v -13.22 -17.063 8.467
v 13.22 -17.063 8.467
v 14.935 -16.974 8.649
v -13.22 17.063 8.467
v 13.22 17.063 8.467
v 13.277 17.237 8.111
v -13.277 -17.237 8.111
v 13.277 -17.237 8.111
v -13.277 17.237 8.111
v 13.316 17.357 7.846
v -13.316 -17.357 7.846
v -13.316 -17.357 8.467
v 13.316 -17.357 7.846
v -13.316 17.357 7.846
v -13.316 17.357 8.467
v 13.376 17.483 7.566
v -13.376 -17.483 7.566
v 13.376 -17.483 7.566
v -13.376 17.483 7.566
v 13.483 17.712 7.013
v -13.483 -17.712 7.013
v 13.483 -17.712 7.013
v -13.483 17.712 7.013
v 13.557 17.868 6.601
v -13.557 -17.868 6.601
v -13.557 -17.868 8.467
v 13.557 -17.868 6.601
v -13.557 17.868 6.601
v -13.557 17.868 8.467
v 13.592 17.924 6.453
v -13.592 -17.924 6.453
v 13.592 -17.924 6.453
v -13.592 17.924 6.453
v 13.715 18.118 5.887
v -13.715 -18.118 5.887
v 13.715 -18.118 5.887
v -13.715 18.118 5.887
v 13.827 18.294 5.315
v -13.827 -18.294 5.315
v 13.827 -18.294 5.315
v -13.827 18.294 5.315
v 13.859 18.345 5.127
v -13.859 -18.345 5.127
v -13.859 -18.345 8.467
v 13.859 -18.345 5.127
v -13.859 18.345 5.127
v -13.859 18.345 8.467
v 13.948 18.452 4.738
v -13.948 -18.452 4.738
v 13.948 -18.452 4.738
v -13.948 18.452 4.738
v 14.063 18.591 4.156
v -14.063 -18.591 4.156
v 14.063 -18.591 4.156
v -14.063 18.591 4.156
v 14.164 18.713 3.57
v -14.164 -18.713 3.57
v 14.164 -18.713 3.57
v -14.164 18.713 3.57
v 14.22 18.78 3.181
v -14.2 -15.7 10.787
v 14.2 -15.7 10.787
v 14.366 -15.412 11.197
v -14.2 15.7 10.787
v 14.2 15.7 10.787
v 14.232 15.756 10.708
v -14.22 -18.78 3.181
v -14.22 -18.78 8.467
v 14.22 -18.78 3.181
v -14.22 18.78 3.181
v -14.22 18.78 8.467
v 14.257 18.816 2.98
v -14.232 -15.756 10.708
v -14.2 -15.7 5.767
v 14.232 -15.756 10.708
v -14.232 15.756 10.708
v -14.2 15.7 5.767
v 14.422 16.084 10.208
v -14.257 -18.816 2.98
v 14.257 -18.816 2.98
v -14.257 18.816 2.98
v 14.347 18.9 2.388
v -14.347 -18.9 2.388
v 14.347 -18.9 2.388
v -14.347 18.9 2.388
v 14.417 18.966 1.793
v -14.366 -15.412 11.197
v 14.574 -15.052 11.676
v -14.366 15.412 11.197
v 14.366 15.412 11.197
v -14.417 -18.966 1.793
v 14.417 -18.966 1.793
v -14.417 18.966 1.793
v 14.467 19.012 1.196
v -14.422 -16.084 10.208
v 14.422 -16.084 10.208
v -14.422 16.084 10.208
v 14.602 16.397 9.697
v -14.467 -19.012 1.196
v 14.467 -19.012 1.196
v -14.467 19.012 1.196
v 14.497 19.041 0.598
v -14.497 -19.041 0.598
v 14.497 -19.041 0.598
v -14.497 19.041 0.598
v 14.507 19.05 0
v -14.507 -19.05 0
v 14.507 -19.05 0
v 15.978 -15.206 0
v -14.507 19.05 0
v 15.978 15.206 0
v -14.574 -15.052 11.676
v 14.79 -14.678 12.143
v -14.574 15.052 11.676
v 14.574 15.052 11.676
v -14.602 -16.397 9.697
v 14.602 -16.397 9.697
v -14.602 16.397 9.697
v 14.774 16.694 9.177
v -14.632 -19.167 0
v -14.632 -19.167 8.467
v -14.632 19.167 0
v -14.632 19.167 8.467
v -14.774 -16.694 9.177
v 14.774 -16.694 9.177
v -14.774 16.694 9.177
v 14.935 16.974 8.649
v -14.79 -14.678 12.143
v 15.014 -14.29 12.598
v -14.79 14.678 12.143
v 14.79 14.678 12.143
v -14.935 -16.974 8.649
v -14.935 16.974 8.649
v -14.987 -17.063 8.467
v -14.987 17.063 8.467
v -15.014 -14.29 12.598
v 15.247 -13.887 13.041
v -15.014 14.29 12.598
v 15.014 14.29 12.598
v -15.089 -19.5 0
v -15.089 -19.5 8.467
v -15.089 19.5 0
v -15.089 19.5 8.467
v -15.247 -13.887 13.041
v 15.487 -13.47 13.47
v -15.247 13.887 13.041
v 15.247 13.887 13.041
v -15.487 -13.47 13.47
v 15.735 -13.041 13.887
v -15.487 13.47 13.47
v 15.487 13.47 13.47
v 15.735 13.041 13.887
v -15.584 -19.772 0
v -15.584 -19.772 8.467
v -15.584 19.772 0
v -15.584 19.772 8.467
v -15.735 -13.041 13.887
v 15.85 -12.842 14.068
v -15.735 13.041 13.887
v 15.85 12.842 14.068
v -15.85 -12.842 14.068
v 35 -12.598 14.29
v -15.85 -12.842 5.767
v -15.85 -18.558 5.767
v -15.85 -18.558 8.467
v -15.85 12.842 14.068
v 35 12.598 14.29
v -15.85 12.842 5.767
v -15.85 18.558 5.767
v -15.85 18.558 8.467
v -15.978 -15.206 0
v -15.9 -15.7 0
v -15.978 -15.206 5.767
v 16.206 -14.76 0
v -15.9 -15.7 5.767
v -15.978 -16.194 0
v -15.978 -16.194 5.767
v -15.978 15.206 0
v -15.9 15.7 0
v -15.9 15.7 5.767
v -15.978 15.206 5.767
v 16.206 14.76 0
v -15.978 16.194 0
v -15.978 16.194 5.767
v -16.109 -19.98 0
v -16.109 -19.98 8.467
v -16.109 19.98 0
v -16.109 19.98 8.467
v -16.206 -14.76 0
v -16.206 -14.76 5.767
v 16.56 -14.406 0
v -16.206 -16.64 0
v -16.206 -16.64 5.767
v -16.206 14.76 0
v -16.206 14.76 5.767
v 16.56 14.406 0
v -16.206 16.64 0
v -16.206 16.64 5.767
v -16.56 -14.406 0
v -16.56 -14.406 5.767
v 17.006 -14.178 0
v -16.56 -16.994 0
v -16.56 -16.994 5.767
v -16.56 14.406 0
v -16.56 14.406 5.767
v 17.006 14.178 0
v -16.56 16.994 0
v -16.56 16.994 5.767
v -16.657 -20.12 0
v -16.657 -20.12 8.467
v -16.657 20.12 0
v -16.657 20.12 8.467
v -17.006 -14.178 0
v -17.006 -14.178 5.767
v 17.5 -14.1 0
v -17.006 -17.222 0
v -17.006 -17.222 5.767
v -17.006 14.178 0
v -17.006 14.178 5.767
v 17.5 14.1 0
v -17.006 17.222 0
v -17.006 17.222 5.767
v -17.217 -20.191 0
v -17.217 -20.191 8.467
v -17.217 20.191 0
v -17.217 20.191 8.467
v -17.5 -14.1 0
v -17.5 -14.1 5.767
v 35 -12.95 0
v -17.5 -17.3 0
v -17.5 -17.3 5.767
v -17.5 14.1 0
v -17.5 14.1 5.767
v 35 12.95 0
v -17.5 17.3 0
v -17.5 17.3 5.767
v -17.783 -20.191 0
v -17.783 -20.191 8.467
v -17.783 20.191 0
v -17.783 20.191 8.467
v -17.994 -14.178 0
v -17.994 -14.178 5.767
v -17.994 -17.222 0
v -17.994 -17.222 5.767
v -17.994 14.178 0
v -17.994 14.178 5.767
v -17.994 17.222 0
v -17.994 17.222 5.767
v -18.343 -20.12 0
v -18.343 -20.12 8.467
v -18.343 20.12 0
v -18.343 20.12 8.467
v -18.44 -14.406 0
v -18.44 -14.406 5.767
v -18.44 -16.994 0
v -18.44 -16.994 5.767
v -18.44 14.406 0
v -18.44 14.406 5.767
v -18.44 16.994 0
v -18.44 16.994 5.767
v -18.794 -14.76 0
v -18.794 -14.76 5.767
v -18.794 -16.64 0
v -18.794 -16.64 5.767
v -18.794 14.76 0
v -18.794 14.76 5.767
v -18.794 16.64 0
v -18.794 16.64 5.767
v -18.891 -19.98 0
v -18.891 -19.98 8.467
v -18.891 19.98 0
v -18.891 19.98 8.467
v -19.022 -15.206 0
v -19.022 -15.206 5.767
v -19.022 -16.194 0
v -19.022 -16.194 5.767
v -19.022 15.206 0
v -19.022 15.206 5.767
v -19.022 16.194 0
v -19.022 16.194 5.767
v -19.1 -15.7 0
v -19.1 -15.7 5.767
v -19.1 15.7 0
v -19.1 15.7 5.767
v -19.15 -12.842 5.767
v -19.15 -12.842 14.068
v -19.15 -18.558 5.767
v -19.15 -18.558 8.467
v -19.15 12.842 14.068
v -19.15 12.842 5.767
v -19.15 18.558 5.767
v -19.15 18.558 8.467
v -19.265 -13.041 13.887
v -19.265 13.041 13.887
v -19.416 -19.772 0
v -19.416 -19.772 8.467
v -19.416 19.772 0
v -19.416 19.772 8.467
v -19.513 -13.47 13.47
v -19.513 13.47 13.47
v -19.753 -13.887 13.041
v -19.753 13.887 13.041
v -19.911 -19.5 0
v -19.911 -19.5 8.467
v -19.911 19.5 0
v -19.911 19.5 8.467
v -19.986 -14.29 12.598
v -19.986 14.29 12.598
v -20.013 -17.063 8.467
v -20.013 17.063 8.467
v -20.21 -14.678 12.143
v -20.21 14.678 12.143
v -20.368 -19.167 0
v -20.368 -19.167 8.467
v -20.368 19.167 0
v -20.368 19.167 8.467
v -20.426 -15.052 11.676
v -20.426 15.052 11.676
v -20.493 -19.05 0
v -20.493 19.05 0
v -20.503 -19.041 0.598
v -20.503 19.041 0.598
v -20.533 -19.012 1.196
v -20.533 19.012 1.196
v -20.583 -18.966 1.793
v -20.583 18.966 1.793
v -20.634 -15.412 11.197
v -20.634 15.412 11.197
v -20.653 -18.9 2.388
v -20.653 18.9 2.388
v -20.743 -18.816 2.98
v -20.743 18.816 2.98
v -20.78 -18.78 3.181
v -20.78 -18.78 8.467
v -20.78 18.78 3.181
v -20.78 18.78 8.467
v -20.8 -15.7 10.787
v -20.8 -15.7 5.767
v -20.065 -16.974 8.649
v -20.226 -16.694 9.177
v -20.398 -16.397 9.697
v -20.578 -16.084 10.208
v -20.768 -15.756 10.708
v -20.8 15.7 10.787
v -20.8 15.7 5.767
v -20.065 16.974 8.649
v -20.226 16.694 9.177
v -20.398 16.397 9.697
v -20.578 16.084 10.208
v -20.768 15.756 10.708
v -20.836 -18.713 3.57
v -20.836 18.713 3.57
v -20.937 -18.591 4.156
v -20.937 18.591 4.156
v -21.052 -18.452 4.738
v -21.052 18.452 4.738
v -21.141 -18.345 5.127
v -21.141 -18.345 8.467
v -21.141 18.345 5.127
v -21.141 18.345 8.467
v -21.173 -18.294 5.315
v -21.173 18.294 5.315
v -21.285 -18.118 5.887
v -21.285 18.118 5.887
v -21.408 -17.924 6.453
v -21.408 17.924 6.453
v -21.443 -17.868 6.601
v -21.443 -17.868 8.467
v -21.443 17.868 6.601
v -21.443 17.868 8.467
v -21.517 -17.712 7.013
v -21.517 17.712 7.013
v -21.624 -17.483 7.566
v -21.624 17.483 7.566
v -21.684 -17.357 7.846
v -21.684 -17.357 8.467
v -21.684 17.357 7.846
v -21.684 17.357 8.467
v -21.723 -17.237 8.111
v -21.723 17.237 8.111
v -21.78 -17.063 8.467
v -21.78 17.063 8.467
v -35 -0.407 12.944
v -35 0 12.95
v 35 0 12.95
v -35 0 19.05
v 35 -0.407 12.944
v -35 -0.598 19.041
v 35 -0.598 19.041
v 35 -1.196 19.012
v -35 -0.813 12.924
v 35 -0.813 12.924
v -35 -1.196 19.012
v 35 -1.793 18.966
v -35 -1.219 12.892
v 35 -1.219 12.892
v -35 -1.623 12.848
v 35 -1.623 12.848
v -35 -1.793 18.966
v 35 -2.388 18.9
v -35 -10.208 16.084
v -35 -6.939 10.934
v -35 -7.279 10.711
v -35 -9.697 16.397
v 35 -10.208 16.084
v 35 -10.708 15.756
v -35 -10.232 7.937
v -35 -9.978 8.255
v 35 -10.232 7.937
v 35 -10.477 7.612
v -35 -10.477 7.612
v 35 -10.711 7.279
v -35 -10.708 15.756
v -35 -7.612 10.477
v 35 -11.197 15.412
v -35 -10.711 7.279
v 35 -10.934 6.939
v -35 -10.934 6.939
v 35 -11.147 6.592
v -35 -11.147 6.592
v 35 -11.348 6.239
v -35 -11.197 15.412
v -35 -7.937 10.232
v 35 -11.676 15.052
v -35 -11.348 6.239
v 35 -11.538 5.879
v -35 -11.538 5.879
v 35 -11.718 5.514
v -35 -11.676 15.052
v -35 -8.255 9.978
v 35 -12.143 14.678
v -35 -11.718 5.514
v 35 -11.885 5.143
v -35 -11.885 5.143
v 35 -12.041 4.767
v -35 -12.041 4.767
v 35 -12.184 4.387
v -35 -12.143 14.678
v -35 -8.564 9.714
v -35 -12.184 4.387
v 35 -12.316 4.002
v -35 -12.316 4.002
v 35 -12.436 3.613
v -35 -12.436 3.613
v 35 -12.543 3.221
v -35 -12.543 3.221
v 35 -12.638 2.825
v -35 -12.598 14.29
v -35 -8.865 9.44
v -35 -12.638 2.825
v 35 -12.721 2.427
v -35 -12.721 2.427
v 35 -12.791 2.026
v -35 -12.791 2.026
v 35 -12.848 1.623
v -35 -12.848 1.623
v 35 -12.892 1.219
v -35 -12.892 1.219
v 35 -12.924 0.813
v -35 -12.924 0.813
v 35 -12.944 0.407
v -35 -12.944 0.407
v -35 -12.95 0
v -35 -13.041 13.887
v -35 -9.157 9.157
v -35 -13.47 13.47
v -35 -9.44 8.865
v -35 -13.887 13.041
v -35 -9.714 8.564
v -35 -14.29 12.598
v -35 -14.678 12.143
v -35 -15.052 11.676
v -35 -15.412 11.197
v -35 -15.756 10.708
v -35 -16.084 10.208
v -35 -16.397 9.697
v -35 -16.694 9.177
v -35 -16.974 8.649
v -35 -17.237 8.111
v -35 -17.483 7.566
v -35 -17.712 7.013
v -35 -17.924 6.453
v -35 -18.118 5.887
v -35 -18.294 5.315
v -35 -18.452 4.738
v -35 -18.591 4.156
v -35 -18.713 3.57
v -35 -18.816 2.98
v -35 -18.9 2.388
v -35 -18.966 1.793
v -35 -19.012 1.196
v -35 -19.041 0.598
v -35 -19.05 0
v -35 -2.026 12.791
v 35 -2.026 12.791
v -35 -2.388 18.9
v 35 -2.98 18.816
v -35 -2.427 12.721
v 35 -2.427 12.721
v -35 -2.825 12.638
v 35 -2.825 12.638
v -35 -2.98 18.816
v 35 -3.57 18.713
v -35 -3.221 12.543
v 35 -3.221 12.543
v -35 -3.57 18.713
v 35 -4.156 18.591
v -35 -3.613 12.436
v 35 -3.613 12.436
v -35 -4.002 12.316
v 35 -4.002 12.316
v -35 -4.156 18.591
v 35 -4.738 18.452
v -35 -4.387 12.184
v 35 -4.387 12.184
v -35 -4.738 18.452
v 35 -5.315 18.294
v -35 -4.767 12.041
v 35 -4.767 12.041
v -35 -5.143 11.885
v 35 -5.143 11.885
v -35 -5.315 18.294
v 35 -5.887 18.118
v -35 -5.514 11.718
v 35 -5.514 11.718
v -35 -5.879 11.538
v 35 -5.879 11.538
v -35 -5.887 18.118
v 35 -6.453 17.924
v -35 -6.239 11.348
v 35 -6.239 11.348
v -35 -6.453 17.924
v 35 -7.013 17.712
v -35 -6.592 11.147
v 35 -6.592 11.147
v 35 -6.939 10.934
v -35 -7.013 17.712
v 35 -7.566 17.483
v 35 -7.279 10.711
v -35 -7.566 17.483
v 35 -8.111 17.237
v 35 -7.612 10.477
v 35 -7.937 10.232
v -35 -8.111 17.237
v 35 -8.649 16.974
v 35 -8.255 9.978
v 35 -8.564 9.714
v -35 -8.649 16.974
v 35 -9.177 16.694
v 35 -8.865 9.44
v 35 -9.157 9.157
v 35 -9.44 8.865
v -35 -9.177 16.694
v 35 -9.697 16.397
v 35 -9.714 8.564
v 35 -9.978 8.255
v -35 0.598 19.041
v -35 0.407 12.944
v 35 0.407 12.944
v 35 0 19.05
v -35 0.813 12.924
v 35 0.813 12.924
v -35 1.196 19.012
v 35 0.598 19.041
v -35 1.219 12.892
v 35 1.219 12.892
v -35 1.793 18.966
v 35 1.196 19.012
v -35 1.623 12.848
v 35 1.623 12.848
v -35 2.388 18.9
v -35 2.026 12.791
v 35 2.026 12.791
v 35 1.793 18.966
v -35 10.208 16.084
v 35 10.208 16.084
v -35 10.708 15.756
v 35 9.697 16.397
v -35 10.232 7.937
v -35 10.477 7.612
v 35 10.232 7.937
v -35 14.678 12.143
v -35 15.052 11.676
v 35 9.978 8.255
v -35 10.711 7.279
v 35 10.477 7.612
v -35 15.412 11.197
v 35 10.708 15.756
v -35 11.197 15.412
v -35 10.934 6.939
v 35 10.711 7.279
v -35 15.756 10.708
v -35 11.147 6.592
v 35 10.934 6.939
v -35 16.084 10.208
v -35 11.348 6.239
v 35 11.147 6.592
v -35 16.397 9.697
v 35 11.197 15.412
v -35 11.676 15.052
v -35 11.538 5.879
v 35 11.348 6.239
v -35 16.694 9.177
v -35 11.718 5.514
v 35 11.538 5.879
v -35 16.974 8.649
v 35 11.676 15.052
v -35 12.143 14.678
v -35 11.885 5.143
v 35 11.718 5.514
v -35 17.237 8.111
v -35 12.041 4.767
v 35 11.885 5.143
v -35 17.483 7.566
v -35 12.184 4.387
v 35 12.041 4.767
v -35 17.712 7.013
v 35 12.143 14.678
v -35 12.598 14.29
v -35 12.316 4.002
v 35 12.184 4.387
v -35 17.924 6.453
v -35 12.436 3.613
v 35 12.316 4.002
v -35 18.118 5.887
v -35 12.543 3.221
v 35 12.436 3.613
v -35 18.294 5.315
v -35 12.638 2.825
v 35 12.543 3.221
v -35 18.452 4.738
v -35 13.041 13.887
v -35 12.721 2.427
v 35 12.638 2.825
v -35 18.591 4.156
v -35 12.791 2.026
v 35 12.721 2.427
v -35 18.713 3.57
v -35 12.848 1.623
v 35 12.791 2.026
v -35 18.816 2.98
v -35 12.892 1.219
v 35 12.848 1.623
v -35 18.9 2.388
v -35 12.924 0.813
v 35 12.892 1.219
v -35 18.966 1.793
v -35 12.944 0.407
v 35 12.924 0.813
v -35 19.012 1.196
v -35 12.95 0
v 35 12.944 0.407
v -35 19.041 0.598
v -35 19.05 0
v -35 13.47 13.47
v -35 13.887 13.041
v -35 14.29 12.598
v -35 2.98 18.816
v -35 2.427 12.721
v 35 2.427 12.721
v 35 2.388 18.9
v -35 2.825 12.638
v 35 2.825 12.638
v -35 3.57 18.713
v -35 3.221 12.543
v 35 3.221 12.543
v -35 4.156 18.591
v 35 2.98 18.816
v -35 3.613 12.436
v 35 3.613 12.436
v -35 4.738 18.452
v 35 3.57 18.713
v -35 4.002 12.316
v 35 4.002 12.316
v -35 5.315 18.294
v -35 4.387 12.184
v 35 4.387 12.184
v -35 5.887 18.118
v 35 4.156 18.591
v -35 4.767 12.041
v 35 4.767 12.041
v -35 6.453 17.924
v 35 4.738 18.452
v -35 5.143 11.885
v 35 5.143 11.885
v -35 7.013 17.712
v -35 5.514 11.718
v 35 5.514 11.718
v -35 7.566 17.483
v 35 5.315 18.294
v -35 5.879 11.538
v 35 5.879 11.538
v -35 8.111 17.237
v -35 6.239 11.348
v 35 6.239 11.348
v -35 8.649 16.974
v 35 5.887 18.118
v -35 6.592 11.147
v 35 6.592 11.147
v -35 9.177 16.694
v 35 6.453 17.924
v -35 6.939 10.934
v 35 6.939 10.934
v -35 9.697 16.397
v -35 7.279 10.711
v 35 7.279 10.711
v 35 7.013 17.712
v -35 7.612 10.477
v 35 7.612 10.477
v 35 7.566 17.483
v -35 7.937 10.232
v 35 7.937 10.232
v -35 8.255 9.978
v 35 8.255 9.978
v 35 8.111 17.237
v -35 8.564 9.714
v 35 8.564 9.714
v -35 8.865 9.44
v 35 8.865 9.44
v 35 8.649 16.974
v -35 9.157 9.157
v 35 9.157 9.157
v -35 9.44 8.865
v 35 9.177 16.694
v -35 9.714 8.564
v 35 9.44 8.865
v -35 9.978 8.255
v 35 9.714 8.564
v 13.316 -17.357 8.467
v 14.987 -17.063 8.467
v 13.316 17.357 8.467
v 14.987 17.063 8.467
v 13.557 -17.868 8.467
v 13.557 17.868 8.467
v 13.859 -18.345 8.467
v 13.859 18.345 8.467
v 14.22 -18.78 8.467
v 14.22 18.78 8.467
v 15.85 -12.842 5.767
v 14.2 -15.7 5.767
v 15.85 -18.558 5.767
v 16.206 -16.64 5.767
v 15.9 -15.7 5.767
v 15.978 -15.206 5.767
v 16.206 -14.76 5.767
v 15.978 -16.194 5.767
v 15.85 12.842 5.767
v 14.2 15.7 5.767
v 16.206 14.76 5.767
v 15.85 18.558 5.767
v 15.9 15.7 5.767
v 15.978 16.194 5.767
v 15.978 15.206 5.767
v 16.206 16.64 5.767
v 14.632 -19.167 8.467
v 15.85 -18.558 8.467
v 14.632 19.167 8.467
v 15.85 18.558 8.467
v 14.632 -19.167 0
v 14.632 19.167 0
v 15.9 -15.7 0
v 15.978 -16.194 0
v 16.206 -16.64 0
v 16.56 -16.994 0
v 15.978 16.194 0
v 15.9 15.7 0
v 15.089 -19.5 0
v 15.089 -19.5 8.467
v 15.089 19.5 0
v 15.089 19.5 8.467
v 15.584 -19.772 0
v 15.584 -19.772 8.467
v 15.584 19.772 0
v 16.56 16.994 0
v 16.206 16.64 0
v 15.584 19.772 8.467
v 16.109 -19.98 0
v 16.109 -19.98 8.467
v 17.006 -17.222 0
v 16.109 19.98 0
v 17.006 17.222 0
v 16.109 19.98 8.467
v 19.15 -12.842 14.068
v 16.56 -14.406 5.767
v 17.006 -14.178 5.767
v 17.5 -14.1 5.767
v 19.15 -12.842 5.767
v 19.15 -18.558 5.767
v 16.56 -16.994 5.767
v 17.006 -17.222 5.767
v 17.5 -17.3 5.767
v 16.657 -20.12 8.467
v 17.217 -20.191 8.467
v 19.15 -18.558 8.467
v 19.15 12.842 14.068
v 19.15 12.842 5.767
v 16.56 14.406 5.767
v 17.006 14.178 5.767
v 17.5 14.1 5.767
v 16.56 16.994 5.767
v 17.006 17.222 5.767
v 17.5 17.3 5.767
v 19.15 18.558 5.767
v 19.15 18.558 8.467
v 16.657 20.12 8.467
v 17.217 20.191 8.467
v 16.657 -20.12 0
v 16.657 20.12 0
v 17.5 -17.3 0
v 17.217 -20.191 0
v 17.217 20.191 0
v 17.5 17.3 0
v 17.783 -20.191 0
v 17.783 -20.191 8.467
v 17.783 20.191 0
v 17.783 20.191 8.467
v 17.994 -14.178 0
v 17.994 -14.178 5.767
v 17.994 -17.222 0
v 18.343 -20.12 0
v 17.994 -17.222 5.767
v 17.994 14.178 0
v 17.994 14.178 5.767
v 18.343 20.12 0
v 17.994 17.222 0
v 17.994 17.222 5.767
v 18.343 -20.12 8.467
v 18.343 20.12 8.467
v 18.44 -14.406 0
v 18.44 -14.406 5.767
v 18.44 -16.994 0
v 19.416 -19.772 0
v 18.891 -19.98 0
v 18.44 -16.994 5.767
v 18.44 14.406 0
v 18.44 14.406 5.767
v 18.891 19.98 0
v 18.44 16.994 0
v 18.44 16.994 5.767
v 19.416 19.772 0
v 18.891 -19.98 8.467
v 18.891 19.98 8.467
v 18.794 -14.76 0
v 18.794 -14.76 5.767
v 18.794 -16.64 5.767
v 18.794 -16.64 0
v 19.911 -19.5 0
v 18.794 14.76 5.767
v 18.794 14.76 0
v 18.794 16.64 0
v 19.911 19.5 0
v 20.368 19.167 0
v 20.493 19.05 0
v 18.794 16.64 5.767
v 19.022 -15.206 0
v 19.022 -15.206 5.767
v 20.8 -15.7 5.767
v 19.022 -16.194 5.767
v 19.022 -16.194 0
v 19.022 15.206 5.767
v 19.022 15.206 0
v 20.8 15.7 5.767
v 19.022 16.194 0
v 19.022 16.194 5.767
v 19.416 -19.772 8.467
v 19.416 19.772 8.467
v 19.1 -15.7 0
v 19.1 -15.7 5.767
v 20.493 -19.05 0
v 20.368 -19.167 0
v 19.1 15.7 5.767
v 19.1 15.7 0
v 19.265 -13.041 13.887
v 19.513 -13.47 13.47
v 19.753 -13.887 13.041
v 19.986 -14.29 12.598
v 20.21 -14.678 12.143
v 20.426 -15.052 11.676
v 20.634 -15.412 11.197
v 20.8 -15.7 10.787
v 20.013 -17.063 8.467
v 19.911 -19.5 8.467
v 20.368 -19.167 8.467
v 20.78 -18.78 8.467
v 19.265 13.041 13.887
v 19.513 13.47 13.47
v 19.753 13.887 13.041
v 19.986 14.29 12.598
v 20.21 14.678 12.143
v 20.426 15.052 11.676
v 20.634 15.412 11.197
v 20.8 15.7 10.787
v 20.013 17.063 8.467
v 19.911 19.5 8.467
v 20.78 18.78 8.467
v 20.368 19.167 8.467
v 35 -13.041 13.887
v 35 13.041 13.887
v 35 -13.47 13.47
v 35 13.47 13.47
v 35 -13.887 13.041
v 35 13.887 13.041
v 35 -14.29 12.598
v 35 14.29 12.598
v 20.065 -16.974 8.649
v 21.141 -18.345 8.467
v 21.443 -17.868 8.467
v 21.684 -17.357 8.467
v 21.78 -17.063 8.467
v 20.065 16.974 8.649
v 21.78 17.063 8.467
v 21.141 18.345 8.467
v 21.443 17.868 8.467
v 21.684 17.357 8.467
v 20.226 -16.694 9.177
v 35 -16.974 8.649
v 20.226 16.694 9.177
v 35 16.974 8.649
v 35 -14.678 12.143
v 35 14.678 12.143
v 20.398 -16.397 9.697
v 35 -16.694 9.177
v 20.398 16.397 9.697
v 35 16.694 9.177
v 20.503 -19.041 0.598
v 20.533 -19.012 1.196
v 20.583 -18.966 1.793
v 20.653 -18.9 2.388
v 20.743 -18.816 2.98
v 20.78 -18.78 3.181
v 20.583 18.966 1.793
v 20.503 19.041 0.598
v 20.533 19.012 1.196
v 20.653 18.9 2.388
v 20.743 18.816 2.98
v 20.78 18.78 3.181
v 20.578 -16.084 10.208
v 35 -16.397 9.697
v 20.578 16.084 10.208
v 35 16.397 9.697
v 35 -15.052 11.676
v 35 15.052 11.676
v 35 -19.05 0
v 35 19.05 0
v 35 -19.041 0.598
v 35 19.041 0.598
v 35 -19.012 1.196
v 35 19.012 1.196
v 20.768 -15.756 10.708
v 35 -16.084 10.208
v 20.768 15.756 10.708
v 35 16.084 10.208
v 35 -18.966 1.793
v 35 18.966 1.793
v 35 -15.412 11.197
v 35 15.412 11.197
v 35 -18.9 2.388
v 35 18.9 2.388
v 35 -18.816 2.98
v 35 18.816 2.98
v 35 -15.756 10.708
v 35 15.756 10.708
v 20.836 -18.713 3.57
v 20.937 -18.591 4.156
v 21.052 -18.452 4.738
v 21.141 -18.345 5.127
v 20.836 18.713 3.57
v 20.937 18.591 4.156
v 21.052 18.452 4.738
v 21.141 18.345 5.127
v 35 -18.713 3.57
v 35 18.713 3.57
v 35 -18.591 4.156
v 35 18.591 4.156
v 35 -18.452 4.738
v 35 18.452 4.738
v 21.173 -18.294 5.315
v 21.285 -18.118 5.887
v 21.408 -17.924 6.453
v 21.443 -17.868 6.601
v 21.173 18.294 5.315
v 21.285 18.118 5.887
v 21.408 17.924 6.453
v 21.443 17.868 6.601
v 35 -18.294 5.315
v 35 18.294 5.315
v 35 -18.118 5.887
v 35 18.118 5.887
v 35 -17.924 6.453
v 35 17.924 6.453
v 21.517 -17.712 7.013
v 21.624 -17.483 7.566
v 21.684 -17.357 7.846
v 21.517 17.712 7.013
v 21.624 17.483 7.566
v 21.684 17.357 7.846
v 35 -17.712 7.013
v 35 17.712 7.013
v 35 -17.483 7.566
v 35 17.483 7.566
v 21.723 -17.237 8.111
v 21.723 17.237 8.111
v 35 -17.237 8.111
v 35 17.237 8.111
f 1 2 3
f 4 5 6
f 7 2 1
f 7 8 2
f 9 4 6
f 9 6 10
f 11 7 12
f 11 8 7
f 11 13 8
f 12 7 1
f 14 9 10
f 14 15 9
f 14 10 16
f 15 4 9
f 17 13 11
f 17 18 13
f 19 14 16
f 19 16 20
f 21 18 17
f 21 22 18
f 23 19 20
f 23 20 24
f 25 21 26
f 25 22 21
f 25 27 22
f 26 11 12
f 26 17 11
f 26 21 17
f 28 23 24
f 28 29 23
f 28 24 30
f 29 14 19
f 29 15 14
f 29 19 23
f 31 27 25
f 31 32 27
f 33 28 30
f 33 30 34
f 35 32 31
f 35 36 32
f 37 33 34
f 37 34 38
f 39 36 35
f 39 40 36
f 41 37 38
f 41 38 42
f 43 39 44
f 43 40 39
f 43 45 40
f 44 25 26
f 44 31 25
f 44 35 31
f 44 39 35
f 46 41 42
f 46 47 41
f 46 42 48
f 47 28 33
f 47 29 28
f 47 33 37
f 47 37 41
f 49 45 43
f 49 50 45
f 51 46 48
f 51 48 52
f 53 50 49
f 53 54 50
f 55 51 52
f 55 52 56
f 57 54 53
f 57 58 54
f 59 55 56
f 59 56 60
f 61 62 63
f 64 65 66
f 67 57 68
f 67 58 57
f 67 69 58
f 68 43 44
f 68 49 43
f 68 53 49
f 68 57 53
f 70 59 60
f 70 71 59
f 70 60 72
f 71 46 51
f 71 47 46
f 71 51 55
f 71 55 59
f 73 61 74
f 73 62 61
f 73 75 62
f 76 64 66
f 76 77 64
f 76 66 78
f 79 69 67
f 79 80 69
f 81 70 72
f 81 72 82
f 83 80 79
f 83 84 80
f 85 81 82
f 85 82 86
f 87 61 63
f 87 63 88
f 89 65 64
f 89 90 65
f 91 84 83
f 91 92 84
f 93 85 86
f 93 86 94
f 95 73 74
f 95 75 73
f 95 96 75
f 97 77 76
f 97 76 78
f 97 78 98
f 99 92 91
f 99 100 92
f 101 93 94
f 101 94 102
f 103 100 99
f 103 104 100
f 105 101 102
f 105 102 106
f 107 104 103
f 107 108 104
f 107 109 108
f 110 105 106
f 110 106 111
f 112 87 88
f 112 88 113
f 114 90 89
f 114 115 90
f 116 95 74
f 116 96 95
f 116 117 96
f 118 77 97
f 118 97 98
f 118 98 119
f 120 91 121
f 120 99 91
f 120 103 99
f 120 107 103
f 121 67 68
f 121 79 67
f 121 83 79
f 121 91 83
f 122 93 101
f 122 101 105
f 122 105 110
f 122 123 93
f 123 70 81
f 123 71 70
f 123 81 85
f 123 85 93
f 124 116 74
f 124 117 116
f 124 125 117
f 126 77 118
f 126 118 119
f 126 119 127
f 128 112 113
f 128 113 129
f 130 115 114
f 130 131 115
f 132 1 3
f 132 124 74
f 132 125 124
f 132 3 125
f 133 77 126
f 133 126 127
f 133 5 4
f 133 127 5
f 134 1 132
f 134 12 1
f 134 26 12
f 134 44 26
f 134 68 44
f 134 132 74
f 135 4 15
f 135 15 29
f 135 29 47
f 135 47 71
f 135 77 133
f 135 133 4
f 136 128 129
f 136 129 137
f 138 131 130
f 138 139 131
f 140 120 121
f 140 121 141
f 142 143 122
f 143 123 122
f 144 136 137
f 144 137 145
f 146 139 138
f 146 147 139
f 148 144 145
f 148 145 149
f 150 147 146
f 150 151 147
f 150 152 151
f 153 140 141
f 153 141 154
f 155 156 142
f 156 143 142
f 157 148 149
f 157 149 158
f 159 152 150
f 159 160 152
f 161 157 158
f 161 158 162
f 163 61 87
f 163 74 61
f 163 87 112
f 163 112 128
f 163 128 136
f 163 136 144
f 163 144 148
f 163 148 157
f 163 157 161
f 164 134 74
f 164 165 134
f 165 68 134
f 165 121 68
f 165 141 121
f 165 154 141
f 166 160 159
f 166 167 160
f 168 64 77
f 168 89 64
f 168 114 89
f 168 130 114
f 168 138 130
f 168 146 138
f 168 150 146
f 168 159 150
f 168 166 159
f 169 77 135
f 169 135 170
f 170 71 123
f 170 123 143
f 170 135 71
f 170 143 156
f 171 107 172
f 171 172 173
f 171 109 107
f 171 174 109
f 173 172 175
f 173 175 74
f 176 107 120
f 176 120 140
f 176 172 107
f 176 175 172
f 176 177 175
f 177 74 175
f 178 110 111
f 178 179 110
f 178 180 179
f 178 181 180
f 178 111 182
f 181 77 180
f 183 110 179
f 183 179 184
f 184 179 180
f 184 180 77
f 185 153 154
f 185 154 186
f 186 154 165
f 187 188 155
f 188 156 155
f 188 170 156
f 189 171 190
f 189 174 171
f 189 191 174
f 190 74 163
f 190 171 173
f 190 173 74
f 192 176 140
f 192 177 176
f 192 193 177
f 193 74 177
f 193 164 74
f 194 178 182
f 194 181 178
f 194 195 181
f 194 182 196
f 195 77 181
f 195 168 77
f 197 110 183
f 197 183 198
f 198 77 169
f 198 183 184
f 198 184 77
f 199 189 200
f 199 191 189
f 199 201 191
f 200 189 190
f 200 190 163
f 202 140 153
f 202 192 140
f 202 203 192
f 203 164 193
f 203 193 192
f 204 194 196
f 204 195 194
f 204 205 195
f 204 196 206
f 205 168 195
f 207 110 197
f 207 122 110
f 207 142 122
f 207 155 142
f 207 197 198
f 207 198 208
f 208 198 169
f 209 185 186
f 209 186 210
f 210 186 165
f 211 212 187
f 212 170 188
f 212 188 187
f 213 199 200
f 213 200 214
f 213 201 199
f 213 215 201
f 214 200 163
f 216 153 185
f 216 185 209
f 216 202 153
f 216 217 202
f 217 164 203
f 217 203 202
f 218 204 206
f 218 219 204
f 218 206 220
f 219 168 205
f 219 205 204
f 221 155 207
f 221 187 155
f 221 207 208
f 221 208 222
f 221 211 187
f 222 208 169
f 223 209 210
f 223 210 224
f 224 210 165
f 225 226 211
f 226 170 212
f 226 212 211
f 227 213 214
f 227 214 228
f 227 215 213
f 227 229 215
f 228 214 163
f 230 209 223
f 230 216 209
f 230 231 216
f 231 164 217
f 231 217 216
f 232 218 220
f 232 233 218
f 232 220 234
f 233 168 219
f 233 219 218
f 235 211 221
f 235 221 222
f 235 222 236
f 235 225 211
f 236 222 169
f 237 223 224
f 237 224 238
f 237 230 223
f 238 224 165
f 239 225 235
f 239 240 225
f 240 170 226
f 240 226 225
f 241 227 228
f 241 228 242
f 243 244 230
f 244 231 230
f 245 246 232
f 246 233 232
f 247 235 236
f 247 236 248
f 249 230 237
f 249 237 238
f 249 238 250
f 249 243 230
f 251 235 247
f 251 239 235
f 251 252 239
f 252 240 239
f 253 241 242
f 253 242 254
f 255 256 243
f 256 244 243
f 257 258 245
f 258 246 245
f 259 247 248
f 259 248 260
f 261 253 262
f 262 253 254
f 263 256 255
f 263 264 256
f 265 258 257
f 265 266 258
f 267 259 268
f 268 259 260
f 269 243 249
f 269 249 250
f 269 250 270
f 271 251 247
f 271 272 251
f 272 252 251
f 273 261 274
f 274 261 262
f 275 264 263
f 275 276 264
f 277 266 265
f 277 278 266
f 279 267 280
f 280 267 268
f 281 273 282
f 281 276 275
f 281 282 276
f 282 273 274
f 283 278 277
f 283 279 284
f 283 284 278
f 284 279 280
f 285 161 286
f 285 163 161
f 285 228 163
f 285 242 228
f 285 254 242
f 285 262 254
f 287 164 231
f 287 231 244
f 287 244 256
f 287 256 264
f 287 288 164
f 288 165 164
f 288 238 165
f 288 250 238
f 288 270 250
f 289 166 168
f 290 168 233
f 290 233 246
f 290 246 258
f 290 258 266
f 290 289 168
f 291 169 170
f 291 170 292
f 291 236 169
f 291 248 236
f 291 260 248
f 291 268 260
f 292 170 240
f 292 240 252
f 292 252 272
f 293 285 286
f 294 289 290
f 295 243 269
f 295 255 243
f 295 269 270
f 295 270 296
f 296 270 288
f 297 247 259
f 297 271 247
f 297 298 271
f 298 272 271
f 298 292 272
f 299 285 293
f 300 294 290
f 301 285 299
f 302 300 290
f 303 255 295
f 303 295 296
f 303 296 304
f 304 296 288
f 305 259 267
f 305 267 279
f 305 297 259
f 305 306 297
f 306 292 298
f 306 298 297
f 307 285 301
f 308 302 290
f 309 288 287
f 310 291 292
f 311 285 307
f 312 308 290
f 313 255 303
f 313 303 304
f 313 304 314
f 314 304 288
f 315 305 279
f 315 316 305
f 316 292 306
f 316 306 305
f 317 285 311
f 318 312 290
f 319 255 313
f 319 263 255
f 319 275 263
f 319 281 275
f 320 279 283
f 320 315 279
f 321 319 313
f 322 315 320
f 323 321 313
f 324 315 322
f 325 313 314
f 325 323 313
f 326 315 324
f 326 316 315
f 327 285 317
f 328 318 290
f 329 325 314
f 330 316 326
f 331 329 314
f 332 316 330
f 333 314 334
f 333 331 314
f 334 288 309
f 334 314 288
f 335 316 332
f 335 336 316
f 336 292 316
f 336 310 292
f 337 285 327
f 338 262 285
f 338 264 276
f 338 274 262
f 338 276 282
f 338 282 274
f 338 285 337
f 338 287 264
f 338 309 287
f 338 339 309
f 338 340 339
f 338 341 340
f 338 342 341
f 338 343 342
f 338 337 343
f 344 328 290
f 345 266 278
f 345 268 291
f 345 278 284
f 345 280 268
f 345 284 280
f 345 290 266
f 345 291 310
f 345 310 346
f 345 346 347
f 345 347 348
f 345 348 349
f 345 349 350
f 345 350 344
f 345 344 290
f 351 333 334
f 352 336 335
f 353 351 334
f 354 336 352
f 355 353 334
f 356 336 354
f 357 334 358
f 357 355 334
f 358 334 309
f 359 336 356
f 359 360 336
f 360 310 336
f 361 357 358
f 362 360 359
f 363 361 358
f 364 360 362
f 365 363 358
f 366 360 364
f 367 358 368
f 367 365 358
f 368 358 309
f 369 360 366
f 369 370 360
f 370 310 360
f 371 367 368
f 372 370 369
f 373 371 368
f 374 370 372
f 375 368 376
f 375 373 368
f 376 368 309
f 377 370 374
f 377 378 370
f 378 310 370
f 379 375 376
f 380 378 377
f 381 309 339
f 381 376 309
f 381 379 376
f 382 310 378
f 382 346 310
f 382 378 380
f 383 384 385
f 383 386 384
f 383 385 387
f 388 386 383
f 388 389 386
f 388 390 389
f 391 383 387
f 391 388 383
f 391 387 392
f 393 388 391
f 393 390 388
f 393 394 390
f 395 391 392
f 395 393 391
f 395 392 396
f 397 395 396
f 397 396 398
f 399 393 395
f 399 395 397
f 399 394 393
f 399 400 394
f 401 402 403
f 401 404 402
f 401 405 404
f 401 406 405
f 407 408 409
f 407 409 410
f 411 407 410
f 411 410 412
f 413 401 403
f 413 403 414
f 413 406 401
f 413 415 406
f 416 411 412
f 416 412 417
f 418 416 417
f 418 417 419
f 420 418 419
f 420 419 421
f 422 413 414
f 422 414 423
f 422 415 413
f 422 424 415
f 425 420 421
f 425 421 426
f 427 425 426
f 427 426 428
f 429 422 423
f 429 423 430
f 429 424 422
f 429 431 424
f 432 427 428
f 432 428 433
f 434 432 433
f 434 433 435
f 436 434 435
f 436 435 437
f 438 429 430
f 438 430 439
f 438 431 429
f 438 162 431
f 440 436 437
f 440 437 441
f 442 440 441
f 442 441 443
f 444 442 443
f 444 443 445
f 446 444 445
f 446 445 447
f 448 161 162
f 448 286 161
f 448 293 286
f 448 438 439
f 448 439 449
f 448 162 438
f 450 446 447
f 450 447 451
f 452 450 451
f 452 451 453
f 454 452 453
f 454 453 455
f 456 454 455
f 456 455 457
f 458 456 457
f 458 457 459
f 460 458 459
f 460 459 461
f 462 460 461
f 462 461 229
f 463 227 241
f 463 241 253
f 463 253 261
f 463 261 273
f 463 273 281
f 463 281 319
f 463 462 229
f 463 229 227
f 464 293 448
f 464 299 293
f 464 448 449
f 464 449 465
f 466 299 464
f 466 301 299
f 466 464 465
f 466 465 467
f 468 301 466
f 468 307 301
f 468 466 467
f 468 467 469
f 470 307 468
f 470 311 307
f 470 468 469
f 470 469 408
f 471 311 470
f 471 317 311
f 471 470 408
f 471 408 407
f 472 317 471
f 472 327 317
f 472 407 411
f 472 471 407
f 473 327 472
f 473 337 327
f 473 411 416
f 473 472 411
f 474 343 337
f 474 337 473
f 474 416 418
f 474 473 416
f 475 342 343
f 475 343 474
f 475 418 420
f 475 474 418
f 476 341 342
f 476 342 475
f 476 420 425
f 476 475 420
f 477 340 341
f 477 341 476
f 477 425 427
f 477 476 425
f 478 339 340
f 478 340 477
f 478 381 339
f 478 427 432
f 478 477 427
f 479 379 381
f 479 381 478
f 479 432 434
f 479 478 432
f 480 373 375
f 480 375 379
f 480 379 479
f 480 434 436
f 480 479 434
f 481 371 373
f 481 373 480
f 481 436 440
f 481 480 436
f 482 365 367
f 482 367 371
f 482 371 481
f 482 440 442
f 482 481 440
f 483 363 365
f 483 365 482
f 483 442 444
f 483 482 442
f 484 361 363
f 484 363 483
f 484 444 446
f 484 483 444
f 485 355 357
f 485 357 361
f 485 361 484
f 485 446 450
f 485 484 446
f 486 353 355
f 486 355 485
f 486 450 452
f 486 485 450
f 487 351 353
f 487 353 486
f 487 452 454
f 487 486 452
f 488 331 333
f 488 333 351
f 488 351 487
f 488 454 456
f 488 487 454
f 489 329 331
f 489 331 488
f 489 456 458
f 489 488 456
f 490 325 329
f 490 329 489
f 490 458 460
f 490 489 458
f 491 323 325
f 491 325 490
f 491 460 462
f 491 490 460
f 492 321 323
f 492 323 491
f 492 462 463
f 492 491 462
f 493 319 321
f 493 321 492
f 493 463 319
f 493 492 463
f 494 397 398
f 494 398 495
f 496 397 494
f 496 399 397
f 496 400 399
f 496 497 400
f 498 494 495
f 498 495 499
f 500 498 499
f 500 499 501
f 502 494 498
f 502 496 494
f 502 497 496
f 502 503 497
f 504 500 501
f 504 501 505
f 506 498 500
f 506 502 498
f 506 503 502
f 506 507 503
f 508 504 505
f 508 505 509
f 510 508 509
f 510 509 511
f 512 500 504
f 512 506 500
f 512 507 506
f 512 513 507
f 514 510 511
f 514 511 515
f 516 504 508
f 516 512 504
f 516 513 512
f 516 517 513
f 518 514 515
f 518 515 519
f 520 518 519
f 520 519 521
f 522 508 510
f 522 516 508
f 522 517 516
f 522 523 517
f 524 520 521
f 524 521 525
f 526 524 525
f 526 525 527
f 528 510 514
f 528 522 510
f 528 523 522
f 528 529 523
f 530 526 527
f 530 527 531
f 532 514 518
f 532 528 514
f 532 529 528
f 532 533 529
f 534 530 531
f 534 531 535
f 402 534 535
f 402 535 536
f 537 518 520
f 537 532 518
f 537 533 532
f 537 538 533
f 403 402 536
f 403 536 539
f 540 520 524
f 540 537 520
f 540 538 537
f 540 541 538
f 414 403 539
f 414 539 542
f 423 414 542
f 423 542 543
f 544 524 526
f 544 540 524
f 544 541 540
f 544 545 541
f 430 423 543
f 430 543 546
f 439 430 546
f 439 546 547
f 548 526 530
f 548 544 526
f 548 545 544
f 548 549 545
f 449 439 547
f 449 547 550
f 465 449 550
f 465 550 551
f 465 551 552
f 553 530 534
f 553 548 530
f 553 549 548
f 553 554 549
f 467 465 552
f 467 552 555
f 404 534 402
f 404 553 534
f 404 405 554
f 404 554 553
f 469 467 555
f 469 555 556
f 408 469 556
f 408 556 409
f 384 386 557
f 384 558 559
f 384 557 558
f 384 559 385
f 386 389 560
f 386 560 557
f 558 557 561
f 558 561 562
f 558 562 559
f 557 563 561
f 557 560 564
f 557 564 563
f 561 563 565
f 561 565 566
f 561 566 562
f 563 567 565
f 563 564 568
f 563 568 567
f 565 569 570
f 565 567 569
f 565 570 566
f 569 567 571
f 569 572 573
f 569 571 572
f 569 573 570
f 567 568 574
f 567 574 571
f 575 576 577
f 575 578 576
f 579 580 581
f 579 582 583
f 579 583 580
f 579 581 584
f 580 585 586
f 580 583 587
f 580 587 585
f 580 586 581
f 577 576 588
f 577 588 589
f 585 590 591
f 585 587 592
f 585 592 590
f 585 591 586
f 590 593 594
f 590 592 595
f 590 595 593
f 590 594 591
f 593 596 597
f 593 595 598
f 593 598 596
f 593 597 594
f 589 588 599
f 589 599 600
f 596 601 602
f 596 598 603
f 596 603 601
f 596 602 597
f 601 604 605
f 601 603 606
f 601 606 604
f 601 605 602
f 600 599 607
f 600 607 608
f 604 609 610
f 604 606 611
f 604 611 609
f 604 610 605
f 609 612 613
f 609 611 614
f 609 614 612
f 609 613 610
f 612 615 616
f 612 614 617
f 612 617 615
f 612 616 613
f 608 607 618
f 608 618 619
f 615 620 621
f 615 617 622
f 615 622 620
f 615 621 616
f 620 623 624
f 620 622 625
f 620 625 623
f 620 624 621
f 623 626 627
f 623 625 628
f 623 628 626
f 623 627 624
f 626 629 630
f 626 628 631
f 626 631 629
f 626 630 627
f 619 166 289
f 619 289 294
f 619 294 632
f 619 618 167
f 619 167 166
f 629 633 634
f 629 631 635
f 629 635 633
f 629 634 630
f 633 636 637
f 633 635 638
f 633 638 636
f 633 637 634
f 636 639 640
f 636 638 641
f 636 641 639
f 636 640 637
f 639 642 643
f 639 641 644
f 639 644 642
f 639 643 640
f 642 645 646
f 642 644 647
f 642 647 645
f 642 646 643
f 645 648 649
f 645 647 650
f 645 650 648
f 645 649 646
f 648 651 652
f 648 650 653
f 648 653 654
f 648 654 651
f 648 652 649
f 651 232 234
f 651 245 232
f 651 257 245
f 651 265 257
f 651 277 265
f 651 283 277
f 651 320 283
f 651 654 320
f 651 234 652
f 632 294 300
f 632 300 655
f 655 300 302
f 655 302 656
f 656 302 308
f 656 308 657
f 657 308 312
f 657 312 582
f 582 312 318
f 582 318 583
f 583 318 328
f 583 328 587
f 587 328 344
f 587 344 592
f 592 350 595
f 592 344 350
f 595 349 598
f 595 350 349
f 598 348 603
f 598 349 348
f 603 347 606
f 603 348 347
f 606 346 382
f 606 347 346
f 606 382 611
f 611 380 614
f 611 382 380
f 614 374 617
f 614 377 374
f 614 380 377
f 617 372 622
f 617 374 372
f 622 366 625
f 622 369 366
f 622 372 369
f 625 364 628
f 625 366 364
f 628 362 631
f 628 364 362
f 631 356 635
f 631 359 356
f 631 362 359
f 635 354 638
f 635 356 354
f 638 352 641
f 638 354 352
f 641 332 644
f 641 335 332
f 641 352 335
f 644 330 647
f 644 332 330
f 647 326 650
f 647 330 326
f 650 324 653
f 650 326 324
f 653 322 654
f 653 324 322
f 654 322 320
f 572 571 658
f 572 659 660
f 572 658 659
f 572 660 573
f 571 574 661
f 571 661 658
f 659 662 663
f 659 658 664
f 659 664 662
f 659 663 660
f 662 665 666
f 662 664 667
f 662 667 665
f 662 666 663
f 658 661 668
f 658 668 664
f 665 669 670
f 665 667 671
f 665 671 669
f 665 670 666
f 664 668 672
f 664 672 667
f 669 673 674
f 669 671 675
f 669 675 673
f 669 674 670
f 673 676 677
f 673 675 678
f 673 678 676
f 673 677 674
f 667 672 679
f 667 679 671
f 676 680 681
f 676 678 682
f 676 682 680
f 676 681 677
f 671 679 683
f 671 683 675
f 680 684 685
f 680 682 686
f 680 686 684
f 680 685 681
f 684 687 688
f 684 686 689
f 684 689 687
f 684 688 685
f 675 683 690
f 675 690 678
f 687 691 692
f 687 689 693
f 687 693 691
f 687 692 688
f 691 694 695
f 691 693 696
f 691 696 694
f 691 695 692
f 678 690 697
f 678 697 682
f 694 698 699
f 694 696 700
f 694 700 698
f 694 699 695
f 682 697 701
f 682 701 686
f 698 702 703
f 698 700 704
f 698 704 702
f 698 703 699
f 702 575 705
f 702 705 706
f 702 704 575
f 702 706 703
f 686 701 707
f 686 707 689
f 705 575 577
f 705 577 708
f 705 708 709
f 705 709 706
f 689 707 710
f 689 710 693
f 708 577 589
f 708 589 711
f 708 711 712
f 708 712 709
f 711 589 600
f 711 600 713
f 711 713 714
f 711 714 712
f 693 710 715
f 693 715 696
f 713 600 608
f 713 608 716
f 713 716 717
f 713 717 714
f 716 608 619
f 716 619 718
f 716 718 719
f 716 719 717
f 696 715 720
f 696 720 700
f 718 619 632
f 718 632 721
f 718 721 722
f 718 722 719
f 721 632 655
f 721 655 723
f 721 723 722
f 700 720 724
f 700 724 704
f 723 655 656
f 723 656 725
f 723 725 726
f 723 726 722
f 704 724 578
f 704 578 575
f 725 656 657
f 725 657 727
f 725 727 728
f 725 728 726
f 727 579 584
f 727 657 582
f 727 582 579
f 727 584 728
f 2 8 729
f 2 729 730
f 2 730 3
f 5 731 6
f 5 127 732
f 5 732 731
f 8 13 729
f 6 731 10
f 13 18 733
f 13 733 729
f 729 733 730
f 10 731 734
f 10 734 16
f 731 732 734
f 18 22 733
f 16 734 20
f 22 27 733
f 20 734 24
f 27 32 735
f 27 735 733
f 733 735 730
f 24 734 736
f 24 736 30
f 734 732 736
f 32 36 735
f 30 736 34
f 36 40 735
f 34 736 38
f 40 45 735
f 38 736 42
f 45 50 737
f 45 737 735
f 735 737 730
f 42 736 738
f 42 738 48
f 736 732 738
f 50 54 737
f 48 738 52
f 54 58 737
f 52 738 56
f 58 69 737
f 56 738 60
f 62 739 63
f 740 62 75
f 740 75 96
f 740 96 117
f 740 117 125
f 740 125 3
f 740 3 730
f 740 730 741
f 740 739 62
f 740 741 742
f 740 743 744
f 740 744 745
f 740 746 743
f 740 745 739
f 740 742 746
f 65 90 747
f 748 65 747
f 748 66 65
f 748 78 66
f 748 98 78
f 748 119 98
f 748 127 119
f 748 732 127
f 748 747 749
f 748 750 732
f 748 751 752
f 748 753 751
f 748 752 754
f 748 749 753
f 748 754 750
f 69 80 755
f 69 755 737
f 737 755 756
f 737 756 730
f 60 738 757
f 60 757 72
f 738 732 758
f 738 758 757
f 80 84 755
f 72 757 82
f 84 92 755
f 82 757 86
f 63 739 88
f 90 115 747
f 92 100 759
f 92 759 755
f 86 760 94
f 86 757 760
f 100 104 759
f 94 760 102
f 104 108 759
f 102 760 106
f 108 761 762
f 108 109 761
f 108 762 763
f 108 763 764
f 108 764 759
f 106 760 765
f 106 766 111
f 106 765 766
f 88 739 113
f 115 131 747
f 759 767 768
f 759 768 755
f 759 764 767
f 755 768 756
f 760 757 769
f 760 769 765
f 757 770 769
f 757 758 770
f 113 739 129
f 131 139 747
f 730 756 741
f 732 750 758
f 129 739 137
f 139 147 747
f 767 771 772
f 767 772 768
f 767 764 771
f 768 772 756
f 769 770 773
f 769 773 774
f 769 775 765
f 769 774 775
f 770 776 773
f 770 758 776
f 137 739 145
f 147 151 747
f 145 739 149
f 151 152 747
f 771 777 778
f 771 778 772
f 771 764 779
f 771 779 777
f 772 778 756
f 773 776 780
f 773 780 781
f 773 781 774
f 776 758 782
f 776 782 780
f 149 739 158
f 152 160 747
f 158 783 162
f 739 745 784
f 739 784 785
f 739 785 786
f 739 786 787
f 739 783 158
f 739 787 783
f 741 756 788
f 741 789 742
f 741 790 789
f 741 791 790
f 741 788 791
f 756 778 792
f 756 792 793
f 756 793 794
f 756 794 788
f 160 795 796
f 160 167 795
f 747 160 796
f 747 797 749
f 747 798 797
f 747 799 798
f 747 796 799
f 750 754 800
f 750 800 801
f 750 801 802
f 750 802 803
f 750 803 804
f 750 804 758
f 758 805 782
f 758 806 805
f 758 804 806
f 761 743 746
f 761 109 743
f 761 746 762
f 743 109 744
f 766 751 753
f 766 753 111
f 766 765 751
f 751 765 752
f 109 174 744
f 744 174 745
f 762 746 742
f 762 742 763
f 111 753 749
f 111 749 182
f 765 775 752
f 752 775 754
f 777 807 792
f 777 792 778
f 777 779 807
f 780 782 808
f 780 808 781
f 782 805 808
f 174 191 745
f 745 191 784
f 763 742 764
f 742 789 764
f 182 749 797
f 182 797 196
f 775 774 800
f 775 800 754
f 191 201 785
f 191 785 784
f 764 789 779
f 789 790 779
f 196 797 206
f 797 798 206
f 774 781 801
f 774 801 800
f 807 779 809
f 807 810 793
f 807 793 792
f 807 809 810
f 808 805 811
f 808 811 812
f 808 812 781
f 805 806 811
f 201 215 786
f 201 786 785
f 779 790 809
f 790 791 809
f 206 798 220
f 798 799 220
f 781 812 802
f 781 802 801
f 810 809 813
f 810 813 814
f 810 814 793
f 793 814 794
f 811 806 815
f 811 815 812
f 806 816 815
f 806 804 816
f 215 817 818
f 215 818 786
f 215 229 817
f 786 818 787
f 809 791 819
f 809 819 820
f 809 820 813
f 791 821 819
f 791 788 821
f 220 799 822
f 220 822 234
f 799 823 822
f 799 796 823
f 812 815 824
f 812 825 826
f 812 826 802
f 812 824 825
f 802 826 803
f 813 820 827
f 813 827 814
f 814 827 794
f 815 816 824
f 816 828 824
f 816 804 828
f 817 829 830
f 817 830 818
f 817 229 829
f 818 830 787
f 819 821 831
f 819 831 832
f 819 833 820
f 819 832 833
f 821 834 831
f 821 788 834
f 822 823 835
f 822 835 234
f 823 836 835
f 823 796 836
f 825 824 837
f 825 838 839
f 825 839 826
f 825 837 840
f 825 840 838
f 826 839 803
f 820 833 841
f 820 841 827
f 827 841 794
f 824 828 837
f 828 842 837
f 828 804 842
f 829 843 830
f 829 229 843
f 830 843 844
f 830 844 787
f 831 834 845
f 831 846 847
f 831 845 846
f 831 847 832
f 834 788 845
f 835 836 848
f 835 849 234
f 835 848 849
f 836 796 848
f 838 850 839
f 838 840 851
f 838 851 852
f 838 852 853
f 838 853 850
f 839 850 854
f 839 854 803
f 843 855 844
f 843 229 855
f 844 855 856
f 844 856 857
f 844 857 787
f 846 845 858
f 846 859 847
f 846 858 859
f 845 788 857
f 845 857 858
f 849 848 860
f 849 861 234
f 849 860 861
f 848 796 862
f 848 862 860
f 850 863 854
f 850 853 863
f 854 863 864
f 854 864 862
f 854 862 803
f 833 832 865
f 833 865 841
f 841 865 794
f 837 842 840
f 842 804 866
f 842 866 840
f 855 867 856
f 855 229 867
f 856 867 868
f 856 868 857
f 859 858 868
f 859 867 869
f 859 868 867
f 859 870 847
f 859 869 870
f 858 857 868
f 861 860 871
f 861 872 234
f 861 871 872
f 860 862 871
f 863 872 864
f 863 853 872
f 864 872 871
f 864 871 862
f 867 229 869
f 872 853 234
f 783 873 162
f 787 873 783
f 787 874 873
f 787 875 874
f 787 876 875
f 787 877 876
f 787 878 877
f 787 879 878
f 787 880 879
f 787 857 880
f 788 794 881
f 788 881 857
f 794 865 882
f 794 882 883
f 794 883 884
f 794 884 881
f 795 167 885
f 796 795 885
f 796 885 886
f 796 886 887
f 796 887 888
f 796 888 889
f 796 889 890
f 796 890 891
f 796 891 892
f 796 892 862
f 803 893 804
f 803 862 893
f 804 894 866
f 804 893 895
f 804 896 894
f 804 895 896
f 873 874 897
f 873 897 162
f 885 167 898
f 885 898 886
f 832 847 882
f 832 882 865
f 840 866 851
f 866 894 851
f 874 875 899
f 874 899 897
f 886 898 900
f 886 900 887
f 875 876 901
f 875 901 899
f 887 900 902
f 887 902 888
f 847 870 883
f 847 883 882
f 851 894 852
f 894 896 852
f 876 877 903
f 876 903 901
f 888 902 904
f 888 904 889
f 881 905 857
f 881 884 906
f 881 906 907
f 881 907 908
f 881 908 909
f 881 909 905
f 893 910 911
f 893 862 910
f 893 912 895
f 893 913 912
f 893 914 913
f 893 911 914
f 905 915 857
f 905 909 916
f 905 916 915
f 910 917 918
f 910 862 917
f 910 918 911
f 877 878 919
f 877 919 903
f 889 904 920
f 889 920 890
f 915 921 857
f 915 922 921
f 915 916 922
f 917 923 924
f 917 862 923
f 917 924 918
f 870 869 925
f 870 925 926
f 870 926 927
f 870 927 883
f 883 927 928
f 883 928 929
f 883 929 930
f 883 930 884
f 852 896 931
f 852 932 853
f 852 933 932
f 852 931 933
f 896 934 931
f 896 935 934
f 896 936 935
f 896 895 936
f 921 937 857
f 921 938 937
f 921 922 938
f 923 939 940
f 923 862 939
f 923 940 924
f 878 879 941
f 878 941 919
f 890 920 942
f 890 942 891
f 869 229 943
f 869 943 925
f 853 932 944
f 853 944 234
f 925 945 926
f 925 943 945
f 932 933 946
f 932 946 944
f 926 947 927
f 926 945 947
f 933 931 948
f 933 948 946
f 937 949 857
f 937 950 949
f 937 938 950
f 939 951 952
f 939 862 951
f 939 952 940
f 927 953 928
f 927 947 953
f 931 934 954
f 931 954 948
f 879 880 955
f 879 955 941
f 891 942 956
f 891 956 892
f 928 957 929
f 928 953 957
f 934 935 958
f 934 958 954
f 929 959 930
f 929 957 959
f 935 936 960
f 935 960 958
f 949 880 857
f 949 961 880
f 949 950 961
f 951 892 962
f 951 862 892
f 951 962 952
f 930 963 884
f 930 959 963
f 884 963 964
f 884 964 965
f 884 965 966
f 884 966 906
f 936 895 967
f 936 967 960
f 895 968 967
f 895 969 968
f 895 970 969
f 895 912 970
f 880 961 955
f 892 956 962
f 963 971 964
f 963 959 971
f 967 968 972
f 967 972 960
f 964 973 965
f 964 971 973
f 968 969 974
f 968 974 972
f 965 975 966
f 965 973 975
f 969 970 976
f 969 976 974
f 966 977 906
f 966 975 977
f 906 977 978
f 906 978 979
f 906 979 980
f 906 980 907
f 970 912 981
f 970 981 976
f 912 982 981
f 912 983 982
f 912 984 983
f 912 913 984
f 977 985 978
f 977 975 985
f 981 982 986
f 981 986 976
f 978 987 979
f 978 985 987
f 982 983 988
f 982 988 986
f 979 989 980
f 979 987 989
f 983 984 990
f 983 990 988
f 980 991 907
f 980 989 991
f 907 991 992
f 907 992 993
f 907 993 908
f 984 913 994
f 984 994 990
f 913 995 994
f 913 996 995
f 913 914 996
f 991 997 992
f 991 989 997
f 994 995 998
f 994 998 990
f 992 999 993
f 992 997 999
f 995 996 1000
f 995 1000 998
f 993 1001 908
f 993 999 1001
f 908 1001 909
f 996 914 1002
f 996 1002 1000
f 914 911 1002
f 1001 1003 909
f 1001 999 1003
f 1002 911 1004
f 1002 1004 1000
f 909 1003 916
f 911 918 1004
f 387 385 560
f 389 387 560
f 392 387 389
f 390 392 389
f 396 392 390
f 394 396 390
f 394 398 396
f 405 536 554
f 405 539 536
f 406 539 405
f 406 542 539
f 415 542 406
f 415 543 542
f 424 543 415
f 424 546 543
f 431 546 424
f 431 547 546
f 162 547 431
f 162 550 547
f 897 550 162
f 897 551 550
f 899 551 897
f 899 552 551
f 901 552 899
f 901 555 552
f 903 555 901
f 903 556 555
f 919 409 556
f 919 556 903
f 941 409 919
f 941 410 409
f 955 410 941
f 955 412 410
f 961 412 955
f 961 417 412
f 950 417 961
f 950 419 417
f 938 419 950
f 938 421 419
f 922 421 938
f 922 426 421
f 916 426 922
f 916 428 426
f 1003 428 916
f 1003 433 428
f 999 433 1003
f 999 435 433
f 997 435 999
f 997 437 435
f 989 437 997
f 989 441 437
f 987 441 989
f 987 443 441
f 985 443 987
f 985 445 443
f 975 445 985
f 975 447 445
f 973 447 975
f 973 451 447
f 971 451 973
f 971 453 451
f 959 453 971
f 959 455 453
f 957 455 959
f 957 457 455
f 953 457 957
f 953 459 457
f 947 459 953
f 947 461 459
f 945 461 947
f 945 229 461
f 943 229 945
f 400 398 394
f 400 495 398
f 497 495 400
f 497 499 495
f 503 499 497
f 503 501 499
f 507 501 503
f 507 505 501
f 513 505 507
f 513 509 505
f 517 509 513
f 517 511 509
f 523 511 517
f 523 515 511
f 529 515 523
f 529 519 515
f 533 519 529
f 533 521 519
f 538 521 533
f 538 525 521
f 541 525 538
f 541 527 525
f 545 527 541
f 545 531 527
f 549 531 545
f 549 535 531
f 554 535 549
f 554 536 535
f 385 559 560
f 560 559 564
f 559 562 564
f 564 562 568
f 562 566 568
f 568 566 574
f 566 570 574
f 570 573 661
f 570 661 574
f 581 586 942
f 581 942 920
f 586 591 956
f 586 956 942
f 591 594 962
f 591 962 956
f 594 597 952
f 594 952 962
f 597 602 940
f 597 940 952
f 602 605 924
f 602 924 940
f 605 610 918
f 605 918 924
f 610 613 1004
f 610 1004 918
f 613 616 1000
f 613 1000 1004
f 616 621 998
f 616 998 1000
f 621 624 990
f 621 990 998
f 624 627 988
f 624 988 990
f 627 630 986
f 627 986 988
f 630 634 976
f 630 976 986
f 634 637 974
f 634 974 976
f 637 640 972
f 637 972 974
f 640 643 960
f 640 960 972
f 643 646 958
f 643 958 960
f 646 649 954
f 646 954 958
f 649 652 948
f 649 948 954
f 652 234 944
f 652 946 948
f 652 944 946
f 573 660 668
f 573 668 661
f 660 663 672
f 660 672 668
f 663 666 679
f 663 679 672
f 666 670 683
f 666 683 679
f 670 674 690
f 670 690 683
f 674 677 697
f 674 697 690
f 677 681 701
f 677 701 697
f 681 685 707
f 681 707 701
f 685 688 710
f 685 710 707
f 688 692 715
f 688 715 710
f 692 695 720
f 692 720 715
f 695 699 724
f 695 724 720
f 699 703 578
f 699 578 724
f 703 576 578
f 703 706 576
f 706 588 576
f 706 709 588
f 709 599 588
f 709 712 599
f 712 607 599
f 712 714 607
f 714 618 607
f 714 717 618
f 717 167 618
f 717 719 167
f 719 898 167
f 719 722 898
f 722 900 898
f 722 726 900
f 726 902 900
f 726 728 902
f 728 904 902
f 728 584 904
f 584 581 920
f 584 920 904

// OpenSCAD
// file: ../888_3013.scad
module 888_3013_A (draft = true){

width = 90;
depth = 45;
height = 10;
tube_lenght = 70;

// TODO:  Slaoučit do jednoho dílu který se pak bude dělit na díl A a díl B až z celkového modelu. Důvodem je lepší udržitelnost kódu.

slit_width = 10-0.2;

    difference(){
        union(){
            // zakladni trubka
            rotate([0, 90, 0])
                translate([0, 0, -tube_lenght/2])
                    cylinder(d = main_tube_outer_diameter * 1.5, h = tube_lenght, $fn=200);

            // sloupky pro srouby
            translate([tube_lenght/4, main_tube_outer_diameter/2 +3, 0])
                cylinder(d=9, h = main_tube_outer_diameter/3, $fn=50);
            translate([-tube_lenght/4, main_tube_outer_diameter/2 +3, 0])
                cylinder(d=9, h = main_tube_outer_diameter/3, $fn=50);
            translate([tube_lenght/4, -main_tube_outer_diameter/2 -3, 0])
                cylinder(d=9, h = main_tube_outer_diameter/3, $fn=50);
            translate([-tube_lenght/4, -main_tube_outer_diameter/2 -3, 0])
                cylinder(d=9, h = main_tube_outer_diameter/3, $fn=50);

            hull(){
                translate([-main_tube_outer_diameter, -slit_width/2, 0])
                    cube([main_tube_outer_diameter*2, slit_width, 1]);
                translate([0, slit_width/2, main_tube_outer_diameter])
                    rotate([90, 0, 0])
                        cylinder(d = 10, h=slit_width);
            }
        }
        rotate([0, 90, 0])
            translate([0, 0, -tube_lenght/2])
                cylinder(d = main_tube_outer_diameter + global_clearance, h = tube_lenght, $fn=200);

            // diry pro srouby
            translate([tube_lenght/4, main_tube_outer_diameter/2 +3, 0])
                cylinder(d=M3_screw_diameter, h = main_tube_outer_diameter/3, $fn=50);
            translate([-tube_lenght/4, main_tube_outer_diameter/2 +3, 0])
                cylinder(d=M3_screw_diameter, h = main_tube_outer_diameter/3, $fn=50);
            translate([tube_lenght/4, -main_tube_outer_diameter/2 -3, 0])
                cylinder(d=M3_screw_diameter, h = main_tube_outer_diameter/3, $fn=50);
            translate([-tube_lenght/4, -main_tube_outer_diameter/2 -3, 0])
                cylinder(d=M3_screw_diameter, h = main_tube_outer_diameter/3, $fn=50);

            translate([tube_lenght/4, main_tube_outer_diameter/2 +3, main_tube_outer_diameter/3 - M3_nut_height])
                cylinder(d=M3_nut_diameter, h = main_tube_outer_diameter/3, $fn=6);
            translate([-tube_lenght/4, main_tube_outer_diameter/2 +3, main_tube_outer_diameter/3 - M3_nut_height])
                cylinder(d=M3_nut_diameter, h = main_tube_outer_diameter/3, $fn=6);
            translate([tube_lenght/4, -main_tube_outer_diameter/2 -3, main_tube_outer_diameter/3 - M3_nut_height])
                cylinder(d=M3_nut_diameter, h = main_tube_outer_diameter/3, $fn=6);
            translate([-tube_lenght/4, -main_tube_outer_diameter/2 -3, main_tube_outer_diameter/3 - M3_nut_height])
                cylinder(d=M3_nut_diameter, h = main_tube_outer_diameter/3, $fn=6);

            // sroub skrz kloub
            translate([0, 50, main_tube_outer_diameter])
                rotate([90, 0, 0])
                    cylinder(d = M3_screw_diameter, h=100, $fn=20);

            translate([-100, -100, -30])
                cube([200, 200, 30]);
    }
}

module 888_3013_B(){

    width = 90;
    depth = 45;
    height = 10;
    tube_lenght = 70;


    difference(){
        union(){
            // zakladni trubka
            rotate([0, 90, 0])
                translate([0, 0, -tube_lenght/2])
                    cylinder(d = main_tube_outer_diameter * 1.5, h = tube_lenght, $fn=200);

            // sloupky pro srouby
            translate([tube_lenght/4, main_tube_outer_diameter/2 +3, 0])
                cylinder(d=9, h = main_tube_outer_diameter/3, $fn=50);
            translate([-tube_lenght/4, main_tube_outer_diameter/2 +3, 0])
                cylinder(d=9, h = main_tube_outer_diameter/3, $fn=50);
            translate([tube_lenght/4, -main_tube_outer_diameter/2 -3, 0])
                cylinder(d=9, h = main_tube_outer_diameter/3, $fn=50);
            translate([-tube_lenght/4, -main_tube_outer_diameter/2 -3, 0])
                cylinder(d=9, h = main_tube_outer_diameter/3, $fn=50);

        }
        rotate([0, 90, 0])
            translate([0, 0, -tube_lenght/2])
                cylinder(d = main_tube_outer_diameter + global_clearance, h = tube_lenght, $fn=200);

            // diry pro srouby
            translate([tube_lenght/4, main_tube_outer_diameter/2 +3, 0])
                cylinder(d=M3_screw_diameter, h = main_tube_outer_diameter/3, $fn=20);
            translate([-tube_lenght/4, main_tube_outer_diameter/2 +3, 0])
                cylinder(d=M3_screw_diameter, h = main_tube_outer_diameter/3, $fn=20);
            translate([tube_lenght/4, -main_tube_outer_diameter/2 -3, 0])
                cylinder(d=M3_screw_diameter, h = main_tube_outer_diameter/3, $fn=20);
            translate([-tube_lenght/4, -main_tube_outer_diameter/2 -3, 0])
                cylinder(d=M3_screw_diameter, h = main_tube_outer_diameter/3, $fn=20);

            translate([tube_lenght/4, main_tube_outer_diameter/2 +3, main_tube_outer_diameter/3 - M3_nut_height])
                cylinder(d=M3_nut_diameter, h = main_tube_outer_diameter/3, $fn=6);
            translate([-tube_lenght/4, main_tube_outer_diameter/2 +3, main_tube_outer_diameter/3 - M3_nut_height])
                cylinder(d=M3_nut_diameter, h = main_tube_outer_diameter/3, $fn=6);
            translate([tube_lenght/4, -main_tube_outer_diameter/2 -3, main_tube_outer_diameter/3 - M3_nut_height])
                cylinder(d=M3_nut_diameter, h = main_tube_outer_diameter/3, $fn=6);
            translate([-tube_lenght/4, -main_tube_outer_diameter/2 -3, main_tube_outer_diameter/3 - M3_nut_height])
                cylinder(d=M3_nut_diameter, h = main_tube_outer_diameter/3, $fn=6);

            translate([-100, -100, -30])
                cube([200, 200, 30]);
    }
}

rotate([0, 180, 0])
    888_3013_A();
888_3013_B();

include <../parameters.scad>
// main file
include <../../parameters.scad>
use <../888_3013.scad>

draft = false;
888_3013_B(draft);
